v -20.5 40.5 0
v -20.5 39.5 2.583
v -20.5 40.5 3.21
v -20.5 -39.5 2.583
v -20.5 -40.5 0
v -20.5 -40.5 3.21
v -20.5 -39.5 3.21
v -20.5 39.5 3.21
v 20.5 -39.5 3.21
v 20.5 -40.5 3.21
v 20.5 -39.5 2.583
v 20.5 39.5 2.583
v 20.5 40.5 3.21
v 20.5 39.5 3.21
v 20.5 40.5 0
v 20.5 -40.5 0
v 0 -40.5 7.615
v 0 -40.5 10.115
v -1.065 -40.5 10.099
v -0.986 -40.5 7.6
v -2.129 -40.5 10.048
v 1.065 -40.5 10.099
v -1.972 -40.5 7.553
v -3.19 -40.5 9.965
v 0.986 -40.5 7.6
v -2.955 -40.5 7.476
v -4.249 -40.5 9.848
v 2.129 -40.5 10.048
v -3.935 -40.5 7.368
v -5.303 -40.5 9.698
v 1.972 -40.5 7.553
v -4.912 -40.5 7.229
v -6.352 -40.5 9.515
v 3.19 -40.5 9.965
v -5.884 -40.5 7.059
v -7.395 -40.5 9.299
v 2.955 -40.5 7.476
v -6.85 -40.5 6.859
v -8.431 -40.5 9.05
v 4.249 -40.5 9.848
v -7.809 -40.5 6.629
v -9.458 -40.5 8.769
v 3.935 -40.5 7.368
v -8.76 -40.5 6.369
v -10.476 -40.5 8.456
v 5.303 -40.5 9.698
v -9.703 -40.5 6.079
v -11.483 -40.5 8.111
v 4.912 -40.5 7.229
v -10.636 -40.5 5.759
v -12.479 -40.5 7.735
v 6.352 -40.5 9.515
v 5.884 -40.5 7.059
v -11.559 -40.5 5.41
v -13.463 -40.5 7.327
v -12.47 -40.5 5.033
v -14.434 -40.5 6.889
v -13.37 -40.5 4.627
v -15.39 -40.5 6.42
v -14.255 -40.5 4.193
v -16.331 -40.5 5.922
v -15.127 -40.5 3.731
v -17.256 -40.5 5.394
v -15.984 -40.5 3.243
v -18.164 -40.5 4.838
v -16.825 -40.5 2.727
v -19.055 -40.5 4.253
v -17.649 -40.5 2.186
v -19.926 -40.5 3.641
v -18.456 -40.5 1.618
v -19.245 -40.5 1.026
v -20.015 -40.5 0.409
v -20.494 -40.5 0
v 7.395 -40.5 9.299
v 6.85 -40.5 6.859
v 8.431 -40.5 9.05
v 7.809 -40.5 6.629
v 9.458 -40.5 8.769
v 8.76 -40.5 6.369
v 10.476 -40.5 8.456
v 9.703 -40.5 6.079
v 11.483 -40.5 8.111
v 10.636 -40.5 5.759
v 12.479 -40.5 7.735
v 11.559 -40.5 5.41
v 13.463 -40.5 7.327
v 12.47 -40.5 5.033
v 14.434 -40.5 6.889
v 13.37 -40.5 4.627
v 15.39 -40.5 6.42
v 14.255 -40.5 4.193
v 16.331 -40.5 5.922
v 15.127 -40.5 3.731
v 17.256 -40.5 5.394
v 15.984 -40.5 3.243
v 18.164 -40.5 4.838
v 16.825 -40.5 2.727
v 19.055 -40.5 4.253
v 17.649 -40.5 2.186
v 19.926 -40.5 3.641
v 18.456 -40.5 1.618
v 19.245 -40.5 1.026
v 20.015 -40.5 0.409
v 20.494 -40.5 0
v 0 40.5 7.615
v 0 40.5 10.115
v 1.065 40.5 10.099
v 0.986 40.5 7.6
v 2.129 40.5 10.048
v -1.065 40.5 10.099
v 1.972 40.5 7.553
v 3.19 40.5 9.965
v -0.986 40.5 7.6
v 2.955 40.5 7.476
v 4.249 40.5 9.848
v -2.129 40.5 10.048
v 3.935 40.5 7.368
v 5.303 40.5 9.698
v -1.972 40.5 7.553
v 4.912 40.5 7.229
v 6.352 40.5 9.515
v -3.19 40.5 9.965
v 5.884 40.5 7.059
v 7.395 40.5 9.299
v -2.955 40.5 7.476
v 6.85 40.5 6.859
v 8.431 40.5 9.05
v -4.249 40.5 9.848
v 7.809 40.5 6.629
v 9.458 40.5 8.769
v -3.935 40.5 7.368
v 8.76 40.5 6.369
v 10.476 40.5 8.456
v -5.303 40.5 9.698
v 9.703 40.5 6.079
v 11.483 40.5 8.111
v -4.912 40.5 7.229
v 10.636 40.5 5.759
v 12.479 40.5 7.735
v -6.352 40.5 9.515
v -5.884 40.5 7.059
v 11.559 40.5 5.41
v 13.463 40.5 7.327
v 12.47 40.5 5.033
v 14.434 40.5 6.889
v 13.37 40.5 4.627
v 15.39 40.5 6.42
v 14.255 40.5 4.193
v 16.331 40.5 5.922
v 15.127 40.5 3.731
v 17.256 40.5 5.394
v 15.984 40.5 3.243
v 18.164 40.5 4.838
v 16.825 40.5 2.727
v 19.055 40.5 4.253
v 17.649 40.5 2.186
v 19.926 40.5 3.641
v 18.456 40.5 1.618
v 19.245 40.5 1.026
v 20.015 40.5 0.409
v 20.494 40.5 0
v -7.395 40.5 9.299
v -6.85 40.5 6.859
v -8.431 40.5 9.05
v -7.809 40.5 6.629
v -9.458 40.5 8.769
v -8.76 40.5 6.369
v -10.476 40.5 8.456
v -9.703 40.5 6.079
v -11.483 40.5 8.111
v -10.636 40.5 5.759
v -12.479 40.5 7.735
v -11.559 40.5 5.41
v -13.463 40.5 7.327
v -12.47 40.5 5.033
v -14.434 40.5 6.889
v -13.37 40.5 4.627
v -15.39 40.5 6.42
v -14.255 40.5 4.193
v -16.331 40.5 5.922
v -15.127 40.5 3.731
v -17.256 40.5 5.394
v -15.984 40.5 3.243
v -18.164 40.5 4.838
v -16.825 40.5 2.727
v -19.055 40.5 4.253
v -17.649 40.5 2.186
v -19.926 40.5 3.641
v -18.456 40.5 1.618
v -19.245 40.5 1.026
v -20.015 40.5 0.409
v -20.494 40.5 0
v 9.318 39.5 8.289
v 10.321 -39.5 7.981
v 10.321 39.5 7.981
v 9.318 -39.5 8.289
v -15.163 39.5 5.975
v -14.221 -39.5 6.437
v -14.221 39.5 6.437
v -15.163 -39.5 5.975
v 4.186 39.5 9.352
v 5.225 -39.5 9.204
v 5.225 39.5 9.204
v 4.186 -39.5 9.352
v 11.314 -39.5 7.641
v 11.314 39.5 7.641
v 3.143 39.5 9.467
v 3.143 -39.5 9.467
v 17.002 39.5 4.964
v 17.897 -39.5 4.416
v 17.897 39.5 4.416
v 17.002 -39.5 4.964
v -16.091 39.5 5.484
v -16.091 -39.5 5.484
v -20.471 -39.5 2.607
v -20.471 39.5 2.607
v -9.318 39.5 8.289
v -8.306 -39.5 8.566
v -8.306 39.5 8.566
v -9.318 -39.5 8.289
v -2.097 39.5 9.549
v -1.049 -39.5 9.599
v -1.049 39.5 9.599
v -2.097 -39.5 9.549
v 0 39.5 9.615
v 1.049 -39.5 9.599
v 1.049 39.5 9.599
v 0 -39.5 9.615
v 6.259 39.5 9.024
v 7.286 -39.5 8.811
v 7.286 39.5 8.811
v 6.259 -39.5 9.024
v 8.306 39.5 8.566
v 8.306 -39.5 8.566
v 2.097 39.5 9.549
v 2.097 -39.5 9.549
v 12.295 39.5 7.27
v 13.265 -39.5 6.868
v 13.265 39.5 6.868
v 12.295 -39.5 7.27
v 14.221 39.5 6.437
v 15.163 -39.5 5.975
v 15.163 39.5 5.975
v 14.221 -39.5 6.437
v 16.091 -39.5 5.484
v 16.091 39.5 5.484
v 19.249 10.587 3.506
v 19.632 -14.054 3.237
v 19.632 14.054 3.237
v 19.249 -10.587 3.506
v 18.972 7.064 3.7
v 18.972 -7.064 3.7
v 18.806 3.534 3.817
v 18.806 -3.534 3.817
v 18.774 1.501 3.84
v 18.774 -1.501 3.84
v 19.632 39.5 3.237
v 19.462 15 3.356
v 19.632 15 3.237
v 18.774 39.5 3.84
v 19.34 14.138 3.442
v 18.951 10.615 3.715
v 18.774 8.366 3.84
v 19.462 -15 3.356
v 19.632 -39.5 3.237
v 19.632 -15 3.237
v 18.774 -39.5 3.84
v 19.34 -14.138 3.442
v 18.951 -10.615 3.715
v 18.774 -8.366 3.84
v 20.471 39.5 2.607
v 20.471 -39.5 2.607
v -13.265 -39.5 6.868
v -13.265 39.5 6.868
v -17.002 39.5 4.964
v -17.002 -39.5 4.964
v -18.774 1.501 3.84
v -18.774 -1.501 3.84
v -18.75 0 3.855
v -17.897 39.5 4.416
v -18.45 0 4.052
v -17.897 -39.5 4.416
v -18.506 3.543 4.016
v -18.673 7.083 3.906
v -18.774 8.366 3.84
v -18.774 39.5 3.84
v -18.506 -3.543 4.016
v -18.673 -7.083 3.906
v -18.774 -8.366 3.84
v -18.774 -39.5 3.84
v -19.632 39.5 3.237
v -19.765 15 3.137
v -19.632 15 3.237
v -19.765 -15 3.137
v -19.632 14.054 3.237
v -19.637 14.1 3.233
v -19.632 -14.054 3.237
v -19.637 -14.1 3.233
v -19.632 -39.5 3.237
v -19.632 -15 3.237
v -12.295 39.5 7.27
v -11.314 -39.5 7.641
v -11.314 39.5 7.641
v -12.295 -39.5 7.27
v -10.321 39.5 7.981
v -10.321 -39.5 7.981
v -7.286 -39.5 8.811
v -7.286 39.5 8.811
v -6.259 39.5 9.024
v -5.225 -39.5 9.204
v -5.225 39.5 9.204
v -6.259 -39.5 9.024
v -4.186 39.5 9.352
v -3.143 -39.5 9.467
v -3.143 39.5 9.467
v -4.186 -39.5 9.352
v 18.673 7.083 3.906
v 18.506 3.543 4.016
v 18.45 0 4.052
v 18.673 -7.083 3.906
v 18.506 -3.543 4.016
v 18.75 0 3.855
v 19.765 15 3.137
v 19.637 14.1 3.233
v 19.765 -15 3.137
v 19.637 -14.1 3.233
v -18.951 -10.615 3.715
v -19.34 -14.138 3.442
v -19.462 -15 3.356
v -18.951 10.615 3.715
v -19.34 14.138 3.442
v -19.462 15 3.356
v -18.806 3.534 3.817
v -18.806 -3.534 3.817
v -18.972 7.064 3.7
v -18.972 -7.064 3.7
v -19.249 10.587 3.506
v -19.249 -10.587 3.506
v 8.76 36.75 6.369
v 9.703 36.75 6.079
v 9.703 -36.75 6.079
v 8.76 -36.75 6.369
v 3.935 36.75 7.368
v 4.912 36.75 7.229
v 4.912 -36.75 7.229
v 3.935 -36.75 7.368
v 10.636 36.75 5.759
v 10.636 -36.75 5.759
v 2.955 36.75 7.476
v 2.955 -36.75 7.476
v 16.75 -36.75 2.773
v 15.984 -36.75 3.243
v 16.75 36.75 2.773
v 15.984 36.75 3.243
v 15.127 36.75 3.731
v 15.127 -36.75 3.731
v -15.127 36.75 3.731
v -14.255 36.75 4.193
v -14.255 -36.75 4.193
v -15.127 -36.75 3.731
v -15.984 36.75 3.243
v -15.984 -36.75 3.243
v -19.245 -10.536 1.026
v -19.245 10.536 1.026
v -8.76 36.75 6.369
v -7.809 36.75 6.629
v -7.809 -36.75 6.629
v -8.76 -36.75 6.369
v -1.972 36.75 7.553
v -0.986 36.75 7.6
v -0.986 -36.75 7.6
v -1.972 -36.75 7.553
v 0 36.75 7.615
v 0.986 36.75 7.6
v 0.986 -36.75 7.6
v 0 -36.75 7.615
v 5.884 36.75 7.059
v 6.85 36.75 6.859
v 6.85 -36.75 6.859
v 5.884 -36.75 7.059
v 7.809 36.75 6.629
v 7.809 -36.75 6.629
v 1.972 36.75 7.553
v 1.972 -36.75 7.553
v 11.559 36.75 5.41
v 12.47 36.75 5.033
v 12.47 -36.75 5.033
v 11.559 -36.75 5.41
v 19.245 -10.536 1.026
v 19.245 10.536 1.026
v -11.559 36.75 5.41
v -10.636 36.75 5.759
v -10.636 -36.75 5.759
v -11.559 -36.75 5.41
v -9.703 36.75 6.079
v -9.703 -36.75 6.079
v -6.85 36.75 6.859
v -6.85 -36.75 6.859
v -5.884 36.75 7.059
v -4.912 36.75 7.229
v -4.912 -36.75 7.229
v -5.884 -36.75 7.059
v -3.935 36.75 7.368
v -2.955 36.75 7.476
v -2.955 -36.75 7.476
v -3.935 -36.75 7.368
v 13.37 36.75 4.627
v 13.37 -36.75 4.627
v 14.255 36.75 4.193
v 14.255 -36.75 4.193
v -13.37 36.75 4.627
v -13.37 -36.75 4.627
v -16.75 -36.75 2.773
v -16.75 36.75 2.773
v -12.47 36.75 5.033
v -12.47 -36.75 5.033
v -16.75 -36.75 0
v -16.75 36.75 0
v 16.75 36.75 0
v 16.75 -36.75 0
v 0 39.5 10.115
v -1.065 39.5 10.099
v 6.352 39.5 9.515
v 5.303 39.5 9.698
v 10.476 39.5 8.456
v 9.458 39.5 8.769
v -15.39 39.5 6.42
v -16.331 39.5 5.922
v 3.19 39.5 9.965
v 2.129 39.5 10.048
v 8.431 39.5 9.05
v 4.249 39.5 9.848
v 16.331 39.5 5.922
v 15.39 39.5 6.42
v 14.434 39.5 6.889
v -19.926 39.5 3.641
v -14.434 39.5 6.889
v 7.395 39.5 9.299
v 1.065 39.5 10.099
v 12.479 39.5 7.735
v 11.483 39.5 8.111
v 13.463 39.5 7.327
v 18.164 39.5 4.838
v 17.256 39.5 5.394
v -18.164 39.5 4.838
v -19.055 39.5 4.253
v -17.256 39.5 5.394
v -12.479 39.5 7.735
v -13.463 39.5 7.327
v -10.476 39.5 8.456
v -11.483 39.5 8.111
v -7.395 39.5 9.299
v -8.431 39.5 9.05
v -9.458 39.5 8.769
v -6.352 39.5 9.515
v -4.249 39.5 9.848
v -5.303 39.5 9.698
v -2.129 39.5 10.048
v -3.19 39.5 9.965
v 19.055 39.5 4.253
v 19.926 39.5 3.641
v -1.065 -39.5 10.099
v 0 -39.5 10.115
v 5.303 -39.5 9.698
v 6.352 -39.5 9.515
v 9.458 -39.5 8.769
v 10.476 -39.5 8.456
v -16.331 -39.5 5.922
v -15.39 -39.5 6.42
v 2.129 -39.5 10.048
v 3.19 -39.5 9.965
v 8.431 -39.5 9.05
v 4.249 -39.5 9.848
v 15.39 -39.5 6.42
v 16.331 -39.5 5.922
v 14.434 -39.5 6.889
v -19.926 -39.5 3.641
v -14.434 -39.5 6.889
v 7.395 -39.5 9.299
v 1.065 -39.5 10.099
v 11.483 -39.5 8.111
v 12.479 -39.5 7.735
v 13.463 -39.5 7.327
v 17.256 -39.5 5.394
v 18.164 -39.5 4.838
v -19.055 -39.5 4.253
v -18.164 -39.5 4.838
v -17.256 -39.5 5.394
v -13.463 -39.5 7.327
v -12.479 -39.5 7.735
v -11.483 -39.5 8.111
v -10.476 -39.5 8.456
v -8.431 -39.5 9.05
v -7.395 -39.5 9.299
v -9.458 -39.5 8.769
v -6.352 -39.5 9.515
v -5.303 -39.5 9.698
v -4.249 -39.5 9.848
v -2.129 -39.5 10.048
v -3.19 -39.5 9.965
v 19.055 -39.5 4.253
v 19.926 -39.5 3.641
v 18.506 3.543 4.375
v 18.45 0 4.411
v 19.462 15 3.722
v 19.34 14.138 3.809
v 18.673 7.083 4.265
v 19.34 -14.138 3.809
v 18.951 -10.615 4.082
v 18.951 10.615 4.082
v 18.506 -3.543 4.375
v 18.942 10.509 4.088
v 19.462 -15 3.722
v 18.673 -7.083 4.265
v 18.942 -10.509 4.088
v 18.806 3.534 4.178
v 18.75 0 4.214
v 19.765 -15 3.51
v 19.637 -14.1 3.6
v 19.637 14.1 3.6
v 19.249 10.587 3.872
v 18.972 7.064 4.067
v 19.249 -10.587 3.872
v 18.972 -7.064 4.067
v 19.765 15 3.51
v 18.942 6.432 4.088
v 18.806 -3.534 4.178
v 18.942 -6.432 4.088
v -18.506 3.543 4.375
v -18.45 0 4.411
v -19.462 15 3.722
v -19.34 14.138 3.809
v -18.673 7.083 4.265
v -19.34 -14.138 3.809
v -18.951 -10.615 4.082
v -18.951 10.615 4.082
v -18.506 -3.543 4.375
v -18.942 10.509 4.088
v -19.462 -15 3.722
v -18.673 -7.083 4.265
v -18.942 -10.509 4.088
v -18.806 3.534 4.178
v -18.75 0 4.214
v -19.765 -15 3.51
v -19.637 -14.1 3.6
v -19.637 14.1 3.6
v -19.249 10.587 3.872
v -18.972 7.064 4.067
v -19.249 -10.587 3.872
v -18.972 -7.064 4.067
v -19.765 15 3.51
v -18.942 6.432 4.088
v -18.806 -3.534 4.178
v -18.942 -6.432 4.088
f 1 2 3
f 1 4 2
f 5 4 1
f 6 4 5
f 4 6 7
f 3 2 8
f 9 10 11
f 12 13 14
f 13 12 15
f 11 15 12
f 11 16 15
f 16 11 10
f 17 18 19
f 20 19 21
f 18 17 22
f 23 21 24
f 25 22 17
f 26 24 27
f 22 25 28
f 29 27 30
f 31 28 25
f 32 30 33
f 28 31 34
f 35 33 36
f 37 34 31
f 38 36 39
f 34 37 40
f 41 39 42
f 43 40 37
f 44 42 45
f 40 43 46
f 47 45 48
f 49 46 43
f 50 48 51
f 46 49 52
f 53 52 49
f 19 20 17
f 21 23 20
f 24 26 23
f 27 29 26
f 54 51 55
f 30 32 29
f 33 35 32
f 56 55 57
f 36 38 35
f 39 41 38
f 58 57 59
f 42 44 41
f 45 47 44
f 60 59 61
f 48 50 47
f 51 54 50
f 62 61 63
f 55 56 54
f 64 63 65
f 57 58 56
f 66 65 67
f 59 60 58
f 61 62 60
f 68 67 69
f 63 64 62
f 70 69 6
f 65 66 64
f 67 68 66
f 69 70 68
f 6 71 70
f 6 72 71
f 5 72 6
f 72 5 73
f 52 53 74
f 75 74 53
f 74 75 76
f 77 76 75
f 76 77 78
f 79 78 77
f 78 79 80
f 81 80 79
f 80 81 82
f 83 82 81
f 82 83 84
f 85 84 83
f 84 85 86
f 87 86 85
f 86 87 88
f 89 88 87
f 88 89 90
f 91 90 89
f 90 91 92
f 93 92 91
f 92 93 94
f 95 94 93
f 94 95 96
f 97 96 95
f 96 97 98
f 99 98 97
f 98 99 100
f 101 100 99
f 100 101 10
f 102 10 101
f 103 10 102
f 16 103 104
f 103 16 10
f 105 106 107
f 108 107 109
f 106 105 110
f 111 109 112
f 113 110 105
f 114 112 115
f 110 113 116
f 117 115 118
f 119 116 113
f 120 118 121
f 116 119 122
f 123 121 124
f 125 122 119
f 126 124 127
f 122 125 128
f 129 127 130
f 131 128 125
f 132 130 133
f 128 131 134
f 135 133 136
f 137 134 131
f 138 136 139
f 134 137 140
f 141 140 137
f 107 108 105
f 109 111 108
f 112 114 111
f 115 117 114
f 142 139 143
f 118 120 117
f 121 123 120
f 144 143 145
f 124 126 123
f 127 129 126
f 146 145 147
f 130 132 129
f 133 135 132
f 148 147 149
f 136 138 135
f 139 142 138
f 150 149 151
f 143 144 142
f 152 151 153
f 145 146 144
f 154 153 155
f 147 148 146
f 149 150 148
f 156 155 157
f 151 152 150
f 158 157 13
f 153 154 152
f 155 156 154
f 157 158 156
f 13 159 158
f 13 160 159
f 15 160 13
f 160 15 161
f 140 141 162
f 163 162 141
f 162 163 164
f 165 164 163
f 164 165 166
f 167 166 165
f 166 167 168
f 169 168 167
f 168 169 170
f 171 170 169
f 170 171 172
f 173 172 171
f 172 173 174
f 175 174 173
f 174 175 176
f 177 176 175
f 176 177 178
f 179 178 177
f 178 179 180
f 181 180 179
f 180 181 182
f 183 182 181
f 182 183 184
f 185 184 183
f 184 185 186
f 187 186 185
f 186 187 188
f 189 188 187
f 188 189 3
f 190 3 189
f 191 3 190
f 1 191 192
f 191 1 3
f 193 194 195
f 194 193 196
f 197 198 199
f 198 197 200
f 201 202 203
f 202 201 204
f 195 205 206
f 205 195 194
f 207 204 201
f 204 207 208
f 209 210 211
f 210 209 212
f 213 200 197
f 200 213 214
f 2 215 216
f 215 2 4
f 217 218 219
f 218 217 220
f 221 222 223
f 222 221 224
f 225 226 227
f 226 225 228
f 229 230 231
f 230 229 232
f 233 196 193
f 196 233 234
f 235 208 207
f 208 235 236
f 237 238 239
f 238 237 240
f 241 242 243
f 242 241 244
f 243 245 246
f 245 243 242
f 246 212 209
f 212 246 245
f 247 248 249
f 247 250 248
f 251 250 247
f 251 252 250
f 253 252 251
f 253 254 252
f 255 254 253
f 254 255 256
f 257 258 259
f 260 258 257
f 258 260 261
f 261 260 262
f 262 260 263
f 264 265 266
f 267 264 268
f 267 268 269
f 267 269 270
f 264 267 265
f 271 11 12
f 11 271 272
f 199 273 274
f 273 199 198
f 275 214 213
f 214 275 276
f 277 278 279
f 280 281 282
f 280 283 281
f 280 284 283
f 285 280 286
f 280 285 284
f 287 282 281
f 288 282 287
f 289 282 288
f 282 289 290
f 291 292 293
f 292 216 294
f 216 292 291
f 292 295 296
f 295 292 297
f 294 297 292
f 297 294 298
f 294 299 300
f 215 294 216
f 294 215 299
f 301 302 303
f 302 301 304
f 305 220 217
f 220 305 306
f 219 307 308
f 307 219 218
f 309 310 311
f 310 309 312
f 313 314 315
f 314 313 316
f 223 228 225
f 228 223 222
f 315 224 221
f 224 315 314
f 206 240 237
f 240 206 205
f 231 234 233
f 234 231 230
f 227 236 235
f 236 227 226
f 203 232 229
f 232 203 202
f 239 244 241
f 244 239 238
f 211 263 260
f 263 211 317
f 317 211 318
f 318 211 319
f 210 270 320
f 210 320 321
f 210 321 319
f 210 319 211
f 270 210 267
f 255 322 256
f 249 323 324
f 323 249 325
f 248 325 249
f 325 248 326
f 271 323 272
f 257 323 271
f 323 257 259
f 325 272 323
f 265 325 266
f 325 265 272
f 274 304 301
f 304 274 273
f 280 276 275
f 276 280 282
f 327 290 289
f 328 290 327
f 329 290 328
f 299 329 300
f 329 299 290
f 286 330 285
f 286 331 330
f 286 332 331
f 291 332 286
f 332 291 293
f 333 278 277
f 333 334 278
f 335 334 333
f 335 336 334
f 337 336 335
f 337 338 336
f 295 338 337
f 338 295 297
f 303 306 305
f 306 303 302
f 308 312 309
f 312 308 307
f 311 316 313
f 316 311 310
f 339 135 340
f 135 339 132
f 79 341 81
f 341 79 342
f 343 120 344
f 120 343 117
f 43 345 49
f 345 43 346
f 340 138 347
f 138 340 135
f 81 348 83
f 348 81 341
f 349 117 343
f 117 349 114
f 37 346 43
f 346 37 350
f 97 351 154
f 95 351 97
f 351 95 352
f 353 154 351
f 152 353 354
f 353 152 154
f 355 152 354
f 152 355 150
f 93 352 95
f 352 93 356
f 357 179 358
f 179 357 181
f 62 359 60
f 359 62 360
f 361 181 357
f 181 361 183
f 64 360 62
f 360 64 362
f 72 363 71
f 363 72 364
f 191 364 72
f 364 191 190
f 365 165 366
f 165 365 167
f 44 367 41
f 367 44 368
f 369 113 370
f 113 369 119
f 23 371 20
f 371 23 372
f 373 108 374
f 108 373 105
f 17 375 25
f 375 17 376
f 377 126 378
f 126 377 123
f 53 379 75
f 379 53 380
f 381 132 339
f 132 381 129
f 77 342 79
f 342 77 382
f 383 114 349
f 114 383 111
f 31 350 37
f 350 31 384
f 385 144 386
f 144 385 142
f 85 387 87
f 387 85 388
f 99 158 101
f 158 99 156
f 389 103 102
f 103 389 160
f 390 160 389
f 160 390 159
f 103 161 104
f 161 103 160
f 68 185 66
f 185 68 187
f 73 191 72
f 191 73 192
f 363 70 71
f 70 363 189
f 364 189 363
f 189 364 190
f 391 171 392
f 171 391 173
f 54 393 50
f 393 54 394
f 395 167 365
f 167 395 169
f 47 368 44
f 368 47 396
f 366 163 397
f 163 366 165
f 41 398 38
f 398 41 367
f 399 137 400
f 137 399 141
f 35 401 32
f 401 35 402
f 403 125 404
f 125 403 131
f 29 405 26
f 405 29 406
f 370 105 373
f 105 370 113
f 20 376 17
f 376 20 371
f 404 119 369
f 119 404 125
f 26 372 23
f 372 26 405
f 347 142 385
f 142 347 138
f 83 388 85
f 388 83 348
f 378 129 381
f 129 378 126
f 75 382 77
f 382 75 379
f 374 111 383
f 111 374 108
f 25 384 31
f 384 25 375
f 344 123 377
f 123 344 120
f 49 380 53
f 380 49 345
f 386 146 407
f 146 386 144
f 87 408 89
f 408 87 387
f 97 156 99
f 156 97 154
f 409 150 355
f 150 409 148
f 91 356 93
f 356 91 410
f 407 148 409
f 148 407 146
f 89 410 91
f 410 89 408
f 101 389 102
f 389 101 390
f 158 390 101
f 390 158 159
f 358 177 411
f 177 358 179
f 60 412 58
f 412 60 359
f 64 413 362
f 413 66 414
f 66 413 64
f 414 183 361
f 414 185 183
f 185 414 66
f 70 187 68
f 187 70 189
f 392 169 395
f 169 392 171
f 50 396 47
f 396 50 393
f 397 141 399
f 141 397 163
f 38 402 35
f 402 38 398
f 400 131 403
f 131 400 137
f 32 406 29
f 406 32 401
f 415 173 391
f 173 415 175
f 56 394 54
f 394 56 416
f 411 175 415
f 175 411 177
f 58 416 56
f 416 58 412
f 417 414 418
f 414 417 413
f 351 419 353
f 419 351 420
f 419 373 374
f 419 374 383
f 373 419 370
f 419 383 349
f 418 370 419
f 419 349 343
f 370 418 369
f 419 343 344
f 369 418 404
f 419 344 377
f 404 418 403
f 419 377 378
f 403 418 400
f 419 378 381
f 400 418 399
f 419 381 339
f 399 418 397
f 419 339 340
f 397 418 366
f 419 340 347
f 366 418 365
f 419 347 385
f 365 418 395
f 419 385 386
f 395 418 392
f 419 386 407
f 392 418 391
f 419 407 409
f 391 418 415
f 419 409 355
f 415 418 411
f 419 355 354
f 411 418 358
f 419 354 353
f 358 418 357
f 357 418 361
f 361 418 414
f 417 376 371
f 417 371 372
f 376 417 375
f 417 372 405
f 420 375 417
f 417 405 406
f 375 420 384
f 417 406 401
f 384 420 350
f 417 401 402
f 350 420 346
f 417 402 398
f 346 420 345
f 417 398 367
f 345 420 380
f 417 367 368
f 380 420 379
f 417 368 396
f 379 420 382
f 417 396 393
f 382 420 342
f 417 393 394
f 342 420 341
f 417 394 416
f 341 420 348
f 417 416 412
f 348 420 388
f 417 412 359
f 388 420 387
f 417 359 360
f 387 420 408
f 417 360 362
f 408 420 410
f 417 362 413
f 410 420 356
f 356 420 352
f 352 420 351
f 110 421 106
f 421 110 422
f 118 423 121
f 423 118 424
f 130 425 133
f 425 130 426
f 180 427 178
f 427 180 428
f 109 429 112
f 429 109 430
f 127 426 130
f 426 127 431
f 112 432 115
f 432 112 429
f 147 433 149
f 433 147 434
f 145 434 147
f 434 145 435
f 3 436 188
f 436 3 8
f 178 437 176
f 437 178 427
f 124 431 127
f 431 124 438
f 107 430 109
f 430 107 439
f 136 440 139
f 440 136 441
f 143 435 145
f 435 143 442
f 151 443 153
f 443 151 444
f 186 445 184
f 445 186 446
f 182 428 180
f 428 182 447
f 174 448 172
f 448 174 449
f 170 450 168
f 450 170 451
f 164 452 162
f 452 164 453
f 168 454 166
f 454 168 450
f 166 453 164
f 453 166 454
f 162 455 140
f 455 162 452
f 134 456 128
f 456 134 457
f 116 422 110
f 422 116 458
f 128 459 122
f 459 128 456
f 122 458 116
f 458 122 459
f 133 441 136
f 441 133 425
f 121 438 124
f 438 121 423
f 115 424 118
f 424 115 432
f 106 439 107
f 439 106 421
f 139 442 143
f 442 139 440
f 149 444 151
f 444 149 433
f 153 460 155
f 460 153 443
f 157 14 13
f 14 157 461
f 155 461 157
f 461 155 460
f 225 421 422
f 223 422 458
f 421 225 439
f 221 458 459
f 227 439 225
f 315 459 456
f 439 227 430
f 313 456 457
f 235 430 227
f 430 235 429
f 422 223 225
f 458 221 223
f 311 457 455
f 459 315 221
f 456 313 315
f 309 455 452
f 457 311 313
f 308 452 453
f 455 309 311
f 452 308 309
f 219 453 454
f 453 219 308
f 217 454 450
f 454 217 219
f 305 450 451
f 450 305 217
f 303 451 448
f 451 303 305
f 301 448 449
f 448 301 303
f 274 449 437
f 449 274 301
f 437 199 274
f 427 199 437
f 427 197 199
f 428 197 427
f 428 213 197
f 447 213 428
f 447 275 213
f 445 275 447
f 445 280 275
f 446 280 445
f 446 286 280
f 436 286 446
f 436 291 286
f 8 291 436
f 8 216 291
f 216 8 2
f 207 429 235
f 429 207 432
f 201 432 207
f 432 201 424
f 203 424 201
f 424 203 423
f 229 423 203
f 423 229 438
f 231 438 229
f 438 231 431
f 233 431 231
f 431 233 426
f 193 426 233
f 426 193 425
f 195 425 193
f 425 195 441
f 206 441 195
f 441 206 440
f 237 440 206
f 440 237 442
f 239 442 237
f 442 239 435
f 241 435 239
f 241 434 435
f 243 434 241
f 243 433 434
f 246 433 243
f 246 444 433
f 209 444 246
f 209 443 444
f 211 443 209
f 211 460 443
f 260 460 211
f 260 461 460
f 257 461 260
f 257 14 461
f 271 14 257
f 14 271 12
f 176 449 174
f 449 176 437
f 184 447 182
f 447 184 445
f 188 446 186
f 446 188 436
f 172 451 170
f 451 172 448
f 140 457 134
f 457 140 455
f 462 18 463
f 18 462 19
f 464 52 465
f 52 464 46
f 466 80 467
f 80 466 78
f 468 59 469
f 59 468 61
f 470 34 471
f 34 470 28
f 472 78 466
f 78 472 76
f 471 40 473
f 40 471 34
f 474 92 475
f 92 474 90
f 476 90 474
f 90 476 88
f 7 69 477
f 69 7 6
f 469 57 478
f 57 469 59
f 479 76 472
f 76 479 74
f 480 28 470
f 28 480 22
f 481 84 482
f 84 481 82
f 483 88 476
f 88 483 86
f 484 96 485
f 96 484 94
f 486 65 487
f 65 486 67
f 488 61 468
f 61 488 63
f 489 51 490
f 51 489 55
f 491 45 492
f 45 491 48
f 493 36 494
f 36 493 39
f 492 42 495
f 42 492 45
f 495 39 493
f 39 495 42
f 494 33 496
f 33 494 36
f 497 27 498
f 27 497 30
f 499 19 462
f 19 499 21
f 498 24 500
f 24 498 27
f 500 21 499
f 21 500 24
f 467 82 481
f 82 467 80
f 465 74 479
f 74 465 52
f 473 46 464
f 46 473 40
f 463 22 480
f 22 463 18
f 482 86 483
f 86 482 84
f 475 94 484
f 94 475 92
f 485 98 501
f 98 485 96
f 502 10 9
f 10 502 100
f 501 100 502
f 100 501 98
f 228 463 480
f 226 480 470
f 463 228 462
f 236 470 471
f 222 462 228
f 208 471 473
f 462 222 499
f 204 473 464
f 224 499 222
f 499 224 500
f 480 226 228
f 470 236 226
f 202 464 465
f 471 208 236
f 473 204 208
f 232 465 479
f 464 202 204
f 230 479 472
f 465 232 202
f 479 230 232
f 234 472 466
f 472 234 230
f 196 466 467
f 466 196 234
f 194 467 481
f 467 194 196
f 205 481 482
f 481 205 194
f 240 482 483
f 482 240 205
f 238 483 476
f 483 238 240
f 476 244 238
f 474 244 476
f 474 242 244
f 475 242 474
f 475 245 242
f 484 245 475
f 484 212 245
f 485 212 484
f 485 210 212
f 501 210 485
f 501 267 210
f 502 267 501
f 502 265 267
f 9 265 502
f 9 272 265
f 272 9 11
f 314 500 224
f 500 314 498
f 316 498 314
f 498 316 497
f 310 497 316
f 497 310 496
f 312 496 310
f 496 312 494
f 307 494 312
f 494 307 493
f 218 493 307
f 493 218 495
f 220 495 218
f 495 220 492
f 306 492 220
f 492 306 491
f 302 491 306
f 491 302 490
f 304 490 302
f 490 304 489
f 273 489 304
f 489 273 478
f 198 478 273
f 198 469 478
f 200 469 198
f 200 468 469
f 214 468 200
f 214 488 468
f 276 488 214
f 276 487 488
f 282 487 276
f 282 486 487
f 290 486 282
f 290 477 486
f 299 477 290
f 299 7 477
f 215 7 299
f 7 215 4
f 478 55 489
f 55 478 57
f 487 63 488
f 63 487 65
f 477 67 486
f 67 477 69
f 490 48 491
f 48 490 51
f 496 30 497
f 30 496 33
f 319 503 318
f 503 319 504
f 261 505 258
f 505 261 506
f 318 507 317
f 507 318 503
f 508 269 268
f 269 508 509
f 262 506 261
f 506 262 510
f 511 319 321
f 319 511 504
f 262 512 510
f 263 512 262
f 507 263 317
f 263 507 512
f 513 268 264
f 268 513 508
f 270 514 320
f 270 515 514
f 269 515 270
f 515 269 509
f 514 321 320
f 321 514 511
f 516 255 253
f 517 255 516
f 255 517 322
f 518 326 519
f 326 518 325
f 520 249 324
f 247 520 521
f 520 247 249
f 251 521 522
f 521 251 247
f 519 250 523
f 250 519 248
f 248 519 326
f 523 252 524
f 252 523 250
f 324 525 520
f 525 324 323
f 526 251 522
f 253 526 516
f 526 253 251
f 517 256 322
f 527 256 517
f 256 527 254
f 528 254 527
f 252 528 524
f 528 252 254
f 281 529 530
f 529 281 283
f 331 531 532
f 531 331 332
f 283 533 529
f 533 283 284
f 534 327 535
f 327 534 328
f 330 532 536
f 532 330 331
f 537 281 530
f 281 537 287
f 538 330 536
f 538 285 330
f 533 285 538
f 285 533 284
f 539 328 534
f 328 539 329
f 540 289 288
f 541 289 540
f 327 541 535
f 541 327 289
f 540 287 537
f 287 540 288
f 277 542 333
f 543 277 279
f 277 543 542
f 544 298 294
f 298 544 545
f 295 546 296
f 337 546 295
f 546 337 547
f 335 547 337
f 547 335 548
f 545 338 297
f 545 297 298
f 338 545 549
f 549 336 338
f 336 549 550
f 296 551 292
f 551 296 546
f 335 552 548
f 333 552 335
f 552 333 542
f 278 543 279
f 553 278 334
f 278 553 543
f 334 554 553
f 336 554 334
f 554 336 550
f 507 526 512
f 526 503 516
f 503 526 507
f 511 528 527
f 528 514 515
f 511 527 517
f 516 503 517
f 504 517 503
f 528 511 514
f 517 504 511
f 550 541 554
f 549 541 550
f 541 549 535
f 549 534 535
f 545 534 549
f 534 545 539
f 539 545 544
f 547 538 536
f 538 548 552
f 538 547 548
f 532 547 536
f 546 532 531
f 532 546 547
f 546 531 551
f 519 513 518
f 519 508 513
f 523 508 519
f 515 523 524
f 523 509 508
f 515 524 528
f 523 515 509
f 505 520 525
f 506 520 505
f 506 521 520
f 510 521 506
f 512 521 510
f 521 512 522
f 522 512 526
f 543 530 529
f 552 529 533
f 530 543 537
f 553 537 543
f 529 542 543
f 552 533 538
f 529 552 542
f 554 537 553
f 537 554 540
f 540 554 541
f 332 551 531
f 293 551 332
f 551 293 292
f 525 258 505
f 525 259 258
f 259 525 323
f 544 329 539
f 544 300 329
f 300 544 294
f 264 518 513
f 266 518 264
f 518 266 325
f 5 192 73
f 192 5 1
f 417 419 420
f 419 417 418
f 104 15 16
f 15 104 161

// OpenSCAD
//from fruit van:

width=35;
length=75;
wall_thick=1.5;
base_thick=2;
height=31;
roof_radius=31.4;
door_length=length/3;

roof_overhang=3;
roof_thick=2;

wiggle_room=1.5;


rain_guard_r = length*1.5;
rain_guard_from_edge = width*0.05;

end_ridges_thick=0.5;
end_ridges_wide=1;
rain_guard_thick=0.3;

side_height= roof_radius*cos(asin((roof_overhang+width/2)/roof_radius));
side_height2 = sqrt(roof_radius*roof_radius - (width/2)*(width/2));
echo(side_height);
echo(side_height2);

difference(){
translate([0,0,-side_height]){//get everything in line with the xy plane
    
    //inner section which will slot into the van
    intersection(){
        translate([0,0,height/2]){
            cube([width-wiggle_room,length-wiggle_room,height*2], center=true);
        }
        rotate([90,0,0]){
                cylinder(r=roof_radius,h=length+roof_overhang*4,center=true,$fn=200);
            }
    }
    difference(){
        
        
        
        intersection(){//basic outline shape of fruit van + overhang:
            translate([0,0,50]){
                cube([width+roof_overhang*2,length+roof_overhang*2,100], center=true);
            }
        
            rotate([90,0,0]){
                cylinder(r=roof_radius+roof_thick,h=length+roof_overhang*2,center=true,$fn=200);
            }
            
        }
        
        rotate([90,0,0]){
                cylinder(r=roof_radius,h=length+roof_overhang*4,center=true,$fn=200);
            }
        
    }
    
    //extra stuff on roof
    difference(){
        union(){
            //ridge along ends1
            intersection(){
                translate([0,0,50]){
                    cube([width+roof_overhang*2,length+roof_overhang*2,100], center=true);
                }
            
                translate([0,length/2+roof_overhang/2+end_ridges_wide,0]){
                rotate([90,0,0]){
                    cylinder(r=roof_radius+roof_thick+end_ridges_thick,h=end_ridges_wide,center=true,$fn=200);
                }
            }
                
            }
            //ridge along ends2
            mirror([0,1,0]){
                intersection(){
                translate([0,0,50]){
                    cube([width+roof_overhang*2,length+roof_overhang*2,100], center=true);
                }
            
                translate([0,length/2+roof_overhang/2+end_ridges_wide,0]){
                rotate([90,0,0]){
                    cylinder(r=roof_radius+roof_thick+end_ridges_thick,h=end_ridges_wide,center=true,$fn=200);
                    }
                }
            
            }
        }
        //rain guard
        intersection(){
        intersection(){
            union(){
                translate([rain_guard_r+width/2+roof_overhang-rain_guard_from_edge,0,0]){
                    difference(){
                        cylinder(r=rain_guard_r+rain_guard_thick, h=70,$fn=200);
                        cylinder(r=rain_guard_r, h=100,$fn=200);
                    }
                }
                mirror([1,0,0]){
                    translate([rain_guard_r+width/2+roof_overhang-rain_guard_from_edge,0,0]){
                    difference(){
                        cylinder(r=rain_guard_r+rain_guard_thick, h=70,$fn=200);
                        cylinder(r=rain_guard_r, h=100,$fn=200);
                    }
                }
            }
            }
            
            rotate([90,0,0]){
                    cylinder(r=roof_radius+roof_thick+rain_guard_thick,h=length,center=true,$fn=200);
                    }
        }
        //don't allow overhang beyond the roof (or too far from edges of door)
        cube([width+roof_overhang*2,door_length*1.2,100], center=true);
    }
        
    }
    //remove anythign below the roof
        rotate([90,0,0]){
                cylinder(r=roof_radius,h=length+roof_overhang*4,center=true,$fn=200);
            }
    }

    
    
    //bits to get rain to avoid the door
    
    

}

//lop off below the xy plane
translate([0,0,-50]){
    cube([100,100,100], center=true);
}

}
